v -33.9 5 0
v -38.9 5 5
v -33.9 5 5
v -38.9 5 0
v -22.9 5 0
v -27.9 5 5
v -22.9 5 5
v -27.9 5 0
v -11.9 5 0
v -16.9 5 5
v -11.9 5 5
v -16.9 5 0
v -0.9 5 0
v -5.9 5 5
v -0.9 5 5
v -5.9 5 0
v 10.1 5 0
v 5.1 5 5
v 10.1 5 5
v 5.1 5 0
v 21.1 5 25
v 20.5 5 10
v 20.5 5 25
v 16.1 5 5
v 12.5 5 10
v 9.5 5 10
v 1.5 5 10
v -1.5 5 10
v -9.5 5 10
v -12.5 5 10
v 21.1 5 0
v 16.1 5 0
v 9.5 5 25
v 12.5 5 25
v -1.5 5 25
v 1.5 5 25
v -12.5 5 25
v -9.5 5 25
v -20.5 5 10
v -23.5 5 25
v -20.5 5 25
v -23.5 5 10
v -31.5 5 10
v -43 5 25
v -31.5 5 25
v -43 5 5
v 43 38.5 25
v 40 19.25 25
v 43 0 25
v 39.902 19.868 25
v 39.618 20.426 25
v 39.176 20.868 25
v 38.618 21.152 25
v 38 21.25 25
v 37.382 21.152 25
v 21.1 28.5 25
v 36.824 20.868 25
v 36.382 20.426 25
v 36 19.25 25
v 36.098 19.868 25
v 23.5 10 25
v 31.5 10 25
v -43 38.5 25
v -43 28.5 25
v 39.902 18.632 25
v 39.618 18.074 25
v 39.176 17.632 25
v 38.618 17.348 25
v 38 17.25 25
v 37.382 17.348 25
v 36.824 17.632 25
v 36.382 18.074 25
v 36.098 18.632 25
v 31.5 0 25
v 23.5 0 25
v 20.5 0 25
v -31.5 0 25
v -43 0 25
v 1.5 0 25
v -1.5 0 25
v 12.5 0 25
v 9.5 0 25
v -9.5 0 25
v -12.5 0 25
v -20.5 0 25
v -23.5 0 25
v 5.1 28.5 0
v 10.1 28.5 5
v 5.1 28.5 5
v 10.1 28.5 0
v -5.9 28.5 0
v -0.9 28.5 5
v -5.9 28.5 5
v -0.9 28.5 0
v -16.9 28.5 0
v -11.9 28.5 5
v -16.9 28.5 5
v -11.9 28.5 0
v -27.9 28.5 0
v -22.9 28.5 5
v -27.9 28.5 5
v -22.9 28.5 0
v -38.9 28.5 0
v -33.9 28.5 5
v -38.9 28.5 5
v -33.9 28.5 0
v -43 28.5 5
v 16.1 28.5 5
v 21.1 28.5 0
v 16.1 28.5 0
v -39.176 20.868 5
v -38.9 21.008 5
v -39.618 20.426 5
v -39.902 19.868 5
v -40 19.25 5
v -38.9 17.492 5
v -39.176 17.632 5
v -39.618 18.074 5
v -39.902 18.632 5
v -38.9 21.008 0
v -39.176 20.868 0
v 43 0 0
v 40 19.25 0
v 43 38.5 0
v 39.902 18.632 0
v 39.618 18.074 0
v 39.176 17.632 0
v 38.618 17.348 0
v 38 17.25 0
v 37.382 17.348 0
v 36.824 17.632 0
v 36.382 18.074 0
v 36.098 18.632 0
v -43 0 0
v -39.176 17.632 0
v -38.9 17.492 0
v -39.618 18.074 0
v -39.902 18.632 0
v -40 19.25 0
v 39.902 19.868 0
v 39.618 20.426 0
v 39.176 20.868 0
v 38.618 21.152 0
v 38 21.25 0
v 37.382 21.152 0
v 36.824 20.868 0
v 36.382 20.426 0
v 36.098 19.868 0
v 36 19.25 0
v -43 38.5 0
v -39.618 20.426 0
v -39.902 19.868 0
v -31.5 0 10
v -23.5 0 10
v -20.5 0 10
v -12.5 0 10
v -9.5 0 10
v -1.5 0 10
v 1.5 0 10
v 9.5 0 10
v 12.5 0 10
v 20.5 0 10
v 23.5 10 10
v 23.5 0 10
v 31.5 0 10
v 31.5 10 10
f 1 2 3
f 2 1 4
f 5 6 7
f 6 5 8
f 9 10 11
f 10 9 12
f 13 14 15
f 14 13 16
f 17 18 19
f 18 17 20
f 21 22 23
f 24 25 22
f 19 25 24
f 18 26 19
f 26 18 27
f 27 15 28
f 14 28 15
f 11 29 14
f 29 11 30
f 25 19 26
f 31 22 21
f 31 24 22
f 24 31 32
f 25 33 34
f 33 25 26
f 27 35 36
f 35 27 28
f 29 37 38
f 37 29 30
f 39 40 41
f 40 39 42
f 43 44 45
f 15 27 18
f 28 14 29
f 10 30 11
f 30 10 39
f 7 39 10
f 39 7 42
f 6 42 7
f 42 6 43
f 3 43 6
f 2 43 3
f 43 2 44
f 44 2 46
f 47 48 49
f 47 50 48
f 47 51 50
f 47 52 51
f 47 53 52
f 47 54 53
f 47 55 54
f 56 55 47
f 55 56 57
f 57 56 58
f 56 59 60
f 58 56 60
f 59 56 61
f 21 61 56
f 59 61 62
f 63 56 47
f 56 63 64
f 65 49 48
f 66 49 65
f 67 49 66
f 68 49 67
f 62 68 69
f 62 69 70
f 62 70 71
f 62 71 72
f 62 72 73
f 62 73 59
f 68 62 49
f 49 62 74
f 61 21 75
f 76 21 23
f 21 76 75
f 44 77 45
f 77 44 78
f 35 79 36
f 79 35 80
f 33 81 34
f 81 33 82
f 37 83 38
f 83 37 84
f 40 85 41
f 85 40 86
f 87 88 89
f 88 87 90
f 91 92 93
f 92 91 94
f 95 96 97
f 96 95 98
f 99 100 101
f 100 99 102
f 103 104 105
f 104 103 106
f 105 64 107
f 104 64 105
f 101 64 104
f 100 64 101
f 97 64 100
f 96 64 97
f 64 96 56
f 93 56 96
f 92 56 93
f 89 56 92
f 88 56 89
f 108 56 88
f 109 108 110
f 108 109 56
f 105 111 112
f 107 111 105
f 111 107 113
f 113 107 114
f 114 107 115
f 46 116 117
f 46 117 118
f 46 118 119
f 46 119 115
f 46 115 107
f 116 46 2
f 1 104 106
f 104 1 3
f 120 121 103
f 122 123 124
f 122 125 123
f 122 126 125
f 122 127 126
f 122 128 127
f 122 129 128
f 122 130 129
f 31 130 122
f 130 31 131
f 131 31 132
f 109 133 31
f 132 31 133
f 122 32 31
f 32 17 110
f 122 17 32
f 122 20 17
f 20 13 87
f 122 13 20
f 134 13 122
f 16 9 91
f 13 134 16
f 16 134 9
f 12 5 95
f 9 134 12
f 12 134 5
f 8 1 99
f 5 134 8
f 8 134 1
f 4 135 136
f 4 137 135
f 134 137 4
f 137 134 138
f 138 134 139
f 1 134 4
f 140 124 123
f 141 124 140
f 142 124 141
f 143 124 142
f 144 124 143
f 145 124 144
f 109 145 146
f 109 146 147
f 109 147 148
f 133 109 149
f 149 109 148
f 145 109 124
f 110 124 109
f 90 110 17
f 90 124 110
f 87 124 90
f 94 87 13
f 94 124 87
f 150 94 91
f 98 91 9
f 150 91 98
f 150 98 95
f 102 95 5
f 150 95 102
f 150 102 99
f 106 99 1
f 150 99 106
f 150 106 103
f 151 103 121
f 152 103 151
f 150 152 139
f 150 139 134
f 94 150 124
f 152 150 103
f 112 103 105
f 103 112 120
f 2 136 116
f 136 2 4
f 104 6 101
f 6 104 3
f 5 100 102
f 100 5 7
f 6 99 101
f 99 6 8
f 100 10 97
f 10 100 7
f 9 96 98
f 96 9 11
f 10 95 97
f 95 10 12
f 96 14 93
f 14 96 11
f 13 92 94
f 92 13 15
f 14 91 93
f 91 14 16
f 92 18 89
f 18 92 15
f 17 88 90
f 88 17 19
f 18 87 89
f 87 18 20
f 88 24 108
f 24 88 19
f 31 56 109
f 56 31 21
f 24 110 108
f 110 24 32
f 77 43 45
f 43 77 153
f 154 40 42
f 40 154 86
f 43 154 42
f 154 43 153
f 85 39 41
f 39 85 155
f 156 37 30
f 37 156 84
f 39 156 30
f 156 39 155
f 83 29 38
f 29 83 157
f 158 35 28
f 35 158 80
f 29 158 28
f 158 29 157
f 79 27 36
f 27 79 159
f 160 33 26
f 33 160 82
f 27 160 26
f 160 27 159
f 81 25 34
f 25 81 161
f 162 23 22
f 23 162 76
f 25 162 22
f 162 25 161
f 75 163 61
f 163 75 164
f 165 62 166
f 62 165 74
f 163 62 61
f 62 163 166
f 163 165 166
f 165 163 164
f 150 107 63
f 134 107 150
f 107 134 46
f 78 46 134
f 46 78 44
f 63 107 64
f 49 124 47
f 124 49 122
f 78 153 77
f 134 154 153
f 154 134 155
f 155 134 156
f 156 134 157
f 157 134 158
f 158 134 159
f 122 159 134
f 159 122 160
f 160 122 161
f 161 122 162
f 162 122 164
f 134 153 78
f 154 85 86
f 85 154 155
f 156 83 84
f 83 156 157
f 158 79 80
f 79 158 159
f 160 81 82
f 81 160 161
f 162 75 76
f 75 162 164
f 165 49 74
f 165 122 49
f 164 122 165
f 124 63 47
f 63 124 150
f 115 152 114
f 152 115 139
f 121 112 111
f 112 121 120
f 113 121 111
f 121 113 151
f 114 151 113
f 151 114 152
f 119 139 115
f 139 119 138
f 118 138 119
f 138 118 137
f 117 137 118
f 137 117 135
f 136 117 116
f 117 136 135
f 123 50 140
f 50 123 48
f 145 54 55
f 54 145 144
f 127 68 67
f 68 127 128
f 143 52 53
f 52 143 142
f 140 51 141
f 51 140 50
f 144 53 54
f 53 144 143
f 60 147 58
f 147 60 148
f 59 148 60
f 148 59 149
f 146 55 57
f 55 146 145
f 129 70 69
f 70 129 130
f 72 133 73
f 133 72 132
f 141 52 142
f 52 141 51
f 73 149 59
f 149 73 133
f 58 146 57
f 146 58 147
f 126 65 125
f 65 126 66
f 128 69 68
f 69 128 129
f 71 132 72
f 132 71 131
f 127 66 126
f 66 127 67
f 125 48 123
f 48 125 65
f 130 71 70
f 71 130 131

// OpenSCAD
/*
    Bridge Plucker Array - Printable Part
    Print 1 copy of this file
*/

// --- Parameters ---
num_strings = 6;
string_spacing = 11; // Standard electric guitar spacing at bridge
servo_L = 23.5;
servo_W = 12.8;

module ServoMG90S_Cutout() {
    cube([servo_L, servo_W, 20]);
    // Cable hole
    translate([0, 0, -5]) cube([servo_L, 5, 20]);
}

module BridgePluckerArray() {
    total_w = num_strings * string_spacing + 20;
    total_d = servo_L + 15;
    total_h = 25;
    
    difference() {
        // Main Block
        translate([-total_w/2, 0, 0])
            cube([total_w, total_d, total_h]);
            
        // Servo Slots
        for (i = [0 : num_strings-1]) {
            // Calculate X pos relative to center
            x_pos = (i - (num_strings-1)/2) * string_spacing;
            
            translate([x_pos - servo_W/2, 5, 5])
                rotate([0,0,90]) // Rotate servos to face strings
                ServoMG90S_Cutout();
                
            // Actuator Arm Slot (Front)
            translate([x_pos - 4, -5, 10])
                cube([8, 15, 20]);
        }
        
        // Mounting Holes (To stick to guitar body)
        translate([-total_w/2 + 5, total_d/2, 0])
            cylinder(d=4, h=50, center=true, $fn=20);
        translate([total_w/2 - 5, total_d/2, 0])
            cylinder(d=4, h=50, center=true, $fn=20);
    }
}

// Render for printing
BridgePluckerArray();
